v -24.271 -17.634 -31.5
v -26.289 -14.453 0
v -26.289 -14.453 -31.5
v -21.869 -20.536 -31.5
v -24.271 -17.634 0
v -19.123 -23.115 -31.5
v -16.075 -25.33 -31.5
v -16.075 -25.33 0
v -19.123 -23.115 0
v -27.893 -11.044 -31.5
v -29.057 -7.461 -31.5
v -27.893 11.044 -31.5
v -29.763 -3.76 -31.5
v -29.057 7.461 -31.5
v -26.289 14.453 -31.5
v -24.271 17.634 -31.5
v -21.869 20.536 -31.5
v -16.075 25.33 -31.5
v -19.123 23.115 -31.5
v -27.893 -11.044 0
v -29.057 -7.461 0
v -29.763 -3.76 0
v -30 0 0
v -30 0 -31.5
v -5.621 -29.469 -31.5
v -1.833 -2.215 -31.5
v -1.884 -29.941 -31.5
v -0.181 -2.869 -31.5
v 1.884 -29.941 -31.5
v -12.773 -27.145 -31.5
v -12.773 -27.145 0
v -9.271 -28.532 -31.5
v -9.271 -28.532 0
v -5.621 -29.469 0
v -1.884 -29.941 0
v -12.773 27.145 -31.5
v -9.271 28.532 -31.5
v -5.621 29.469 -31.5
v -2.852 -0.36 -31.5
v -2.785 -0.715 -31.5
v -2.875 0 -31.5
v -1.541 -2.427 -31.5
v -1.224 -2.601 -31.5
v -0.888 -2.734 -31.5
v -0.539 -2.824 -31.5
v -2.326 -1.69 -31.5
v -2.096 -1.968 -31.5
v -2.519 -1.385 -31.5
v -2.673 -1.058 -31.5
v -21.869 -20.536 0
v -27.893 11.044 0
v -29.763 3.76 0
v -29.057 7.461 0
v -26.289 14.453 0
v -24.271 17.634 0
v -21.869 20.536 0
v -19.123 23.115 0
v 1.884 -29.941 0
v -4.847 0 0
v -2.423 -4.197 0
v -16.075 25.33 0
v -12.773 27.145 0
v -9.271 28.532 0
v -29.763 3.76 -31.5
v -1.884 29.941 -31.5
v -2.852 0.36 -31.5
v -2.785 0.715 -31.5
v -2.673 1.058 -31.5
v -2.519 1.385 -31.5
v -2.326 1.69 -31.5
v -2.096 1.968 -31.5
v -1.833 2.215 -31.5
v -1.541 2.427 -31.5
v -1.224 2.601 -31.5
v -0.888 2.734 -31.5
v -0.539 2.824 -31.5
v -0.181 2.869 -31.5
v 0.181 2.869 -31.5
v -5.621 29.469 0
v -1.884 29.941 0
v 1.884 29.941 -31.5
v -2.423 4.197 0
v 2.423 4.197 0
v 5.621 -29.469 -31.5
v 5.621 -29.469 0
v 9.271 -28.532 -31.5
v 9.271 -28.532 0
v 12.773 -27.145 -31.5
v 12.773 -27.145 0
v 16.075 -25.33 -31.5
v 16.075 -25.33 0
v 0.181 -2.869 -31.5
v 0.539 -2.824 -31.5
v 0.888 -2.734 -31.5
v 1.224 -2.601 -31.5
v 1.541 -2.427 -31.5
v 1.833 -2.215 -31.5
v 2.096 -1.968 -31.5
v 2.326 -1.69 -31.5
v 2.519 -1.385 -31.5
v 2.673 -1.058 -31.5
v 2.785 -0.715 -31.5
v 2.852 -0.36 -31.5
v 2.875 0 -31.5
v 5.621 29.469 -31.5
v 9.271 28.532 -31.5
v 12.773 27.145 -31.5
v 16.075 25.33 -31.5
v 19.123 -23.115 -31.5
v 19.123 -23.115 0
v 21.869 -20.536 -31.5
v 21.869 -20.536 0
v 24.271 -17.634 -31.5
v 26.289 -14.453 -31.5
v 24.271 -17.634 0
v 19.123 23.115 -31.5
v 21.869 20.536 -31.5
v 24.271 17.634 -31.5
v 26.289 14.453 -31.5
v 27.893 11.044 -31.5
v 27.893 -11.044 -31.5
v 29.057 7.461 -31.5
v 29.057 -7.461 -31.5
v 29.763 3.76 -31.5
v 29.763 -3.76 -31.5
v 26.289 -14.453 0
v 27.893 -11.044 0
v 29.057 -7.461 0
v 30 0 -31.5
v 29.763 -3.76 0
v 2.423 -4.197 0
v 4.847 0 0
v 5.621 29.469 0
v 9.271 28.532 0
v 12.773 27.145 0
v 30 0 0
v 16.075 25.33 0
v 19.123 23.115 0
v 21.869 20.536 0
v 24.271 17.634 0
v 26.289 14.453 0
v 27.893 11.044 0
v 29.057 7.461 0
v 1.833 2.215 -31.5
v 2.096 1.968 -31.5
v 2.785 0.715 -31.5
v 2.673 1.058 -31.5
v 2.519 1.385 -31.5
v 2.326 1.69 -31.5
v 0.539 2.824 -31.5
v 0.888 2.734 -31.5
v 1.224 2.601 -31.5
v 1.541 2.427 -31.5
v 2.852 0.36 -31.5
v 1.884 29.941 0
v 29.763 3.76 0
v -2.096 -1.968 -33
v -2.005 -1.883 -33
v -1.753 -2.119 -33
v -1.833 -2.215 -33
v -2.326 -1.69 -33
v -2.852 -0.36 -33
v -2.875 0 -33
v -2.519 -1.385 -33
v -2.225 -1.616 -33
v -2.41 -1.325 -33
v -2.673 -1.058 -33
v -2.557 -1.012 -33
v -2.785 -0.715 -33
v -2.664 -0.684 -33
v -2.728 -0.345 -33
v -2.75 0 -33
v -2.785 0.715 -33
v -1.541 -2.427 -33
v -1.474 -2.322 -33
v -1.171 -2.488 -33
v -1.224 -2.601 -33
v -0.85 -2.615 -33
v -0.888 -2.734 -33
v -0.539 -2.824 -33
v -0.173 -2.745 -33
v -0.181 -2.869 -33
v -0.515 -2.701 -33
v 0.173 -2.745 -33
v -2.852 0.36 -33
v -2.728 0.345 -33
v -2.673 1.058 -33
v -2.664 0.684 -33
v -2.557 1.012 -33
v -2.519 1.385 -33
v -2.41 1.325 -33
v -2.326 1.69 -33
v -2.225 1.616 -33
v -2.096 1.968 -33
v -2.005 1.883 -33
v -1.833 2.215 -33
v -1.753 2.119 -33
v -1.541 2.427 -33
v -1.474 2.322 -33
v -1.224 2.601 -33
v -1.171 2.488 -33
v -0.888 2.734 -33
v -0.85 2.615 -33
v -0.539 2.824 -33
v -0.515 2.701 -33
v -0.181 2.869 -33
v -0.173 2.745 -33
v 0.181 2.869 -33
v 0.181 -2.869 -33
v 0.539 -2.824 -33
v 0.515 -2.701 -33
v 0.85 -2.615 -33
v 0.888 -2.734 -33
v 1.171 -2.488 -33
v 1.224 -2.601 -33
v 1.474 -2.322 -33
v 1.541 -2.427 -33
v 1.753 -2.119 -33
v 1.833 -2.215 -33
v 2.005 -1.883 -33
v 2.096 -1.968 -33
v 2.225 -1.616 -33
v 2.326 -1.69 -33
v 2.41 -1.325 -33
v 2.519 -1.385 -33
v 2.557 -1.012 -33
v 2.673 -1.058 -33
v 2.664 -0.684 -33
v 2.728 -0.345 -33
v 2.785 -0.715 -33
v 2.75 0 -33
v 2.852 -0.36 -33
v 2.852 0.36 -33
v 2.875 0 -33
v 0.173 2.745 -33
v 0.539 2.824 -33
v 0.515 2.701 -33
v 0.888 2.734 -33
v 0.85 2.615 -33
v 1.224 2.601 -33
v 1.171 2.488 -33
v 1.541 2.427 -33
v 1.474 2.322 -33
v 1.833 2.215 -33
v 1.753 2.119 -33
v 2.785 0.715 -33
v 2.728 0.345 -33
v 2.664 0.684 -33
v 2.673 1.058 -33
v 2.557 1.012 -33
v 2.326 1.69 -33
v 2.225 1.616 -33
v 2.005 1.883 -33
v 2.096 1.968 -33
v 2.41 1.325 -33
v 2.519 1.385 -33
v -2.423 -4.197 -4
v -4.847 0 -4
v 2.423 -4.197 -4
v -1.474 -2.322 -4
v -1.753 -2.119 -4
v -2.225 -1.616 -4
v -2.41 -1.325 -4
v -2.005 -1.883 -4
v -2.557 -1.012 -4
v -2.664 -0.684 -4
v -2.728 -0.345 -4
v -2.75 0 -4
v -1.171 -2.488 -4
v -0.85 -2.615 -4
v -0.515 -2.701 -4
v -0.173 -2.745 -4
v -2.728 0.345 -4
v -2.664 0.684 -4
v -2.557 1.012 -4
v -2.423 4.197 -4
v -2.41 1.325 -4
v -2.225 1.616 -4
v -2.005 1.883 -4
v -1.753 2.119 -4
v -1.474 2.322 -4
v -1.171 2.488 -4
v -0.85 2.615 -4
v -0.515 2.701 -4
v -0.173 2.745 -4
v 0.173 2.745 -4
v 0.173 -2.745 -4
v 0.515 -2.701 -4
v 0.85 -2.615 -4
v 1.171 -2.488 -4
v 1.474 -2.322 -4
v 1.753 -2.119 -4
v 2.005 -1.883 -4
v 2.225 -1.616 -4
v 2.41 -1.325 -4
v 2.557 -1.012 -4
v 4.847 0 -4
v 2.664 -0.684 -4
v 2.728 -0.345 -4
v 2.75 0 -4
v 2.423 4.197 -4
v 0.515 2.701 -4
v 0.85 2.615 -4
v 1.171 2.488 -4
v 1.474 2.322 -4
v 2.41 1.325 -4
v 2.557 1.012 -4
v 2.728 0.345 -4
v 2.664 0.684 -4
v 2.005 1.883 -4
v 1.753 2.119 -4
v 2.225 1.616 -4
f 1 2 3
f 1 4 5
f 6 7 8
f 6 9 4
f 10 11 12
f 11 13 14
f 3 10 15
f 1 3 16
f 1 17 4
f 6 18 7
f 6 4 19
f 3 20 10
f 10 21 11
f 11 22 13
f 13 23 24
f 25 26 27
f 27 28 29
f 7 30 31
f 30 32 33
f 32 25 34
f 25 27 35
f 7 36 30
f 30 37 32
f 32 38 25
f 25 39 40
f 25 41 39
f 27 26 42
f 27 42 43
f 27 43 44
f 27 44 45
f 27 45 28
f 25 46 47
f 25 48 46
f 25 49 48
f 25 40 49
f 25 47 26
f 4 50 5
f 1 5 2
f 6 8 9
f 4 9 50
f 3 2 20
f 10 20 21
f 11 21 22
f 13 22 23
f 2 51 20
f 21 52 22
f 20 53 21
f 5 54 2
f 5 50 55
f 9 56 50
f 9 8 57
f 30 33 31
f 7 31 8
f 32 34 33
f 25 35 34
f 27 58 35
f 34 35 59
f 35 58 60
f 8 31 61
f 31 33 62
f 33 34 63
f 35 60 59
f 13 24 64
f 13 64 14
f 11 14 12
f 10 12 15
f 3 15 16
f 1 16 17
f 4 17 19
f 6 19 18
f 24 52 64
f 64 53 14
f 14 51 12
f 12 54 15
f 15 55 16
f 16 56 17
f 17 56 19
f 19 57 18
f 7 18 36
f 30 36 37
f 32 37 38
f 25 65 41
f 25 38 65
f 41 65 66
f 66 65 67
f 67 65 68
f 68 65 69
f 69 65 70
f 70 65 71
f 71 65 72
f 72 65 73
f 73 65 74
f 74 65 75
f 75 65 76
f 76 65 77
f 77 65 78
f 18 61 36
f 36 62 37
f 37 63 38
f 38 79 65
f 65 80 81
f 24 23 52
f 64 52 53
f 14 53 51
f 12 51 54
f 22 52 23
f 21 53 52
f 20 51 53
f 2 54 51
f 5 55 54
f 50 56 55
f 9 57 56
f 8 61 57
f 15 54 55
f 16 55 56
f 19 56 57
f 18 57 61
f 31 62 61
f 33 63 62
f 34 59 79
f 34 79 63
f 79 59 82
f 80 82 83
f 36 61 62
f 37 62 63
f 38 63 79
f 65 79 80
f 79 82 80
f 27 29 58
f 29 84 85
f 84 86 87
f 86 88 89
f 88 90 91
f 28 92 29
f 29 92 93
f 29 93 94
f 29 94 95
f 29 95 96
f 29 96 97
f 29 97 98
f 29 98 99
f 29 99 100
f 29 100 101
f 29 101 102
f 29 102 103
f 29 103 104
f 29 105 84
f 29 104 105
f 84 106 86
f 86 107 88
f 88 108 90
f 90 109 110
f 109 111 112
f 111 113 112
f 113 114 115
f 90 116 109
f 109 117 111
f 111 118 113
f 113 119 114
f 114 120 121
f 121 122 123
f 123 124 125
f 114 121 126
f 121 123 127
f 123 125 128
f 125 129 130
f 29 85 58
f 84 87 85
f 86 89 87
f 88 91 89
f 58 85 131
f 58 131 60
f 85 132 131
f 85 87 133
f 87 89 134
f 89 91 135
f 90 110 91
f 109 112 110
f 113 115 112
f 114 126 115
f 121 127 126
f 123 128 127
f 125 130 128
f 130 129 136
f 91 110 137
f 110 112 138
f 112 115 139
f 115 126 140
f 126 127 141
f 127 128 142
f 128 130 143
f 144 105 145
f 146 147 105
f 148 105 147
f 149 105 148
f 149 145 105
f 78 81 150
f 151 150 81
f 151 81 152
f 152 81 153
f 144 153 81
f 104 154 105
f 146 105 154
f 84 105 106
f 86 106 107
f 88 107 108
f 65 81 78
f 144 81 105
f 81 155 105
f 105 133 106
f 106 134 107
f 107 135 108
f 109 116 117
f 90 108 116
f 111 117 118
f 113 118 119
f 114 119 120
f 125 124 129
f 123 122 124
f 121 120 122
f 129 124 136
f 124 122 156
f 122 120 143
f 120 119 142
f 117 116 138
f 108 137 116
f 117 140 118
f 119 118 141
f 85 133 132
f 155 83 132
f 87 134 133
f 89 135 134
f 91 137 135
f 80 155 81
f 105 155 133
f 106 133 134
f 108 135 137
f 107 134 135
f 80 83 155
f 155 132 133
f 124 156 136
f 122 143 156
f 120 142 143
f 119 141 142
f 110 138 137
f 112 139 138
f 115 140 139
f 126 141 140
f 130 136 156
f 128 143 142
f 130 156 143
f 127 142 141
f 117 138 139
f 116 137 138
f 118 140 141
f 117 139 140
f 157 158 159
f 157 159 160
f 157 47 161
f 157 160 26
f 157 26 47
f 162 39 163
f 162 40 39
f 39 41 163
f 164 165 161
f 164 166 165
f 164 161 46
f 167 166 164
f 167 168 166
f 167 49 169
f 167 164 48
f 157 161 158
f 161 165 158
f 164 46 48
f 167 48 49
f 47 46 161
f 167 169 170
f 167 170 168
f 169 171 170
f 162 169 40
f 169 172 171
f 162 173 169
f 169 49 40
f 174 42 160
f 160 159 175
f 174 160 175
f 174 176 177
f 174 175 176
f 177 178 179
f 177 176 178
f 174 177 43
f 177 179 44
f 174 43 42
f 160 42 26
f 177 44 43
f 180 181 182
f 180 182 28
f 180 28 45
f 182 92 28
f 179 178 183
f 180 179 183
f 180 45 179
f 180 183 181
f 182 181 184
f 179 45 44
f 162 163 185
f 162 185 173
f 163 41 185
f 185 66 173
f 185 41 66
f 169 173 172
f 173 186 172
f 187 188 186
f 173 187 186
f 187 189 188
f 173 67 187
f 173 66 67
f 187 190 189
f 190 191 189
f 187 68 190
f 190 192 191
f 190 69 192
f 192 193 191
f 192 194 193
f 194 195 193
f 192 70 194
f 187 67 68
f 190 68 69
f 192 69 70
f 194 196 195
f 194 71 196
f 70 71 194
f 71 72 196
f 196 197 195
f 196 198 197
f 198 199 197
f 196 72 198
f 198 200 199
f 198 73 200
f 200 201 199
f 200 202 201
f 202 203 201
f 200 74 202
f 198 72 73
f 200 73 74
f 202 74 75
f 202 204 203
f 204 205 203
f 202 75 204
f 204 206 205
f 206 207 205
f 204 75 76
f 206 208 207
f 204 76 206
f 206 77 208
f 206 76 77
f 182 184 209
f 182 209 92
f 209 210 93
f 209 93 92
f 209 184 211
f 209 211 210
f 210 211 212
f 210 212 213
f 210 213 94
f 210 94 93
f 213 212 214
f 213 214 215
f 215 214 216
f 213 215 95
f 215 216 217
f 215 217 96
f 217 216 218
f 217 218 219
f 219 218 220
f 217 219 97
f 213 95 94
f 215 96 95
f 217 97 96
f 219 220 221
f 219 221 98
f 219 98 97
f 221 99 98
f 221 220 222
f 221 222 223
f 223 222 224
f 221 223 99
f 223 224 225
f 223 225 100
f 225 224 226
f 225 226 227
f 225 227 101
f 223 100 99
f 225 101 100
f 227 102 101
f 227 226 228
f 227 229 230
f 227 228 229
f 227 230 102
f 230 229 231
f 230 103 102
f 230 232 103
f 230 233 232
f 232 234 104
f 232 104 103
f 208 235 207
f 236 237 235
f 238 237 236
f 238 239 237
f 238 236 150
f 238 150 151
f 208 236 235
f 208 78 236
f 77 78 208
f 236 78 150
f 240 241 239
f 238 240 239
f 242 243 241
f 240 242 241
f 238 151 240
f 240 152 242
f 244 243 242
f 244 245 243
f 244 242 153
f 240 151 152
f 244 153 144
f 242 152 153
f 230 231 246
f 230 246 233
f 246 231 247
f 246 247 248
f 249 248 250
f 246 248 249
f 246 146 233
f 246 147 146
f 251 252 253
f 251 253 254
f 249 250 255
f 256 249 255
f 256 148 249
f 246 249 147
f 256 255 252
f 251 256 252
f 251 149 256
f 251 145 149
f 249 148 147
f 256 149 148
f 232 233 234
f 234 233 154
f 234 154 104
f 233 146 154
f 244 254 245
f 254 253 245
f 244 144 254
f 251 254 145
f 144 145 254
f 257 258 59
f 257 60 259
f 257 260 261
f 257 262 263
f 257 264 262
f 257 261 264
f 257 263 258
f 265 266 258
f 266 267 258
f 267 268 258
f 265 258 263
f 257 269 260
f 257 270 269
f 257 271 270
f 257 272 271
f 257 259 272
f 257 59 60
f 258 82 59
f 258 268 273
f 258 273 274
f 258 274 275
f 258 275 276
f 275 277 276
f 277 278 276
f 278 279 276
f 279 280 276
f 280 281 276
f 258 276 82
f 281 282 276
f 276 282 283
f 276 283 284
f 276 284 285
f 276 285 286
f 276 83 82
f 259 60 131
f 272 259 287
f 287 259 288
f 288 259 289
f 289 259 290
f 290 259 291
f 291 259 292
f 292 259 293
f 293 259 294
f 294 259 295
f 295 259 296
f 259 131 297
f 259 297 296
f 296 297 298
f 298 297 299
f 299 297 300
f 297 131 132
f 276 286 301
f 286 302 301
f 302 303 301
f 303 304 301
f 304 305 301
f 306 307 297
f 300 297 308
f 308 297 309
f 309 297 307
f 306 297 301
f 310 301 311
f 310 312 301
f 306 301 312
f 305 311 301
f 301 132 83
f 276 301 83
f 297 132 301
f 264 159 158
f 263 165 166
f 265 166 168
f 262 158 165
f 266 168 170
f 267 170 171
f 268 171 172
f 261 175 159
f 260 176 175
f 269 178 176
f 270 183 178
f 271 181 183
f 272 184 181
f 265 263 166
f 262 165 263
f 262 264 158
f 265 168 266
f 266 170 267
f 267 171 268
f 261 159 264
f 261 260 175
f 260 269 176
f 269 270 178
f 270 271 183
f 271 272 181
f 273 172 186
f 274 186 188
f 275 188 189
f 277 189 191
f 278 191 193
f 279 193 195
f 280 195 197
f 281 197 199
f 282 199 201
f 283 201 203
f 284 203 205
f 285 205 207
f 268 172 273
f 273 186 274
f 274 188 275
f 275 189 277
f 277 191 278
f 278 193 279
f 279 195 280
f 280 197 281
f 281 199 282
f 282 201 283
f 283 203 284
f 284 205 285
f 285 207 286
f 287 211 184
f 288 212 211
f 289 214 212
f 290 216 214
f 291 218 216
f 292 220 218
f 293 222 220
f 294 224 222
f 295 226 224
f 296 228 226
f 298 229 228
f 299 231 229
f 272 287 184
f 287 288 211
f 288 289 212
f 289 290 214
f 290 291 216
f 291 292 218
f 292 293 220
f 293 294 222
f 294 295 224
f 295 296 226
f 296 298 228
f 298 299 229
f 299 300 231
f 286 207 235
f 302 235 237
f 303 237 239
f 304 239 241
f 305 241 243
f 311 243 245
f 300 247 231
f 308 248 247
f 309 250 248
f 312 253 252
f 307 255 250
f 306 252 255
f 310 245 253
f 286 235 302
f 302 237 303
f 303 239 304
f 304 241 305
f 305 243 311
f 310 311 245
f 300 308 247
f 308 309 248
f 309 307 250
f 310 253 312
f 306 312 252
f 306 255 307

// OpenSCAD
$fn = 50;


difference() {
	union() {
		translate(v = [0, 0, -31.5000000000]) {
			cylinder(h = 31.5000000000, r = 30.0000000000);
		}
		#translate(v = [0, 0, -33.0000000000]) {
			cylinder(h = 33, r = 2.8750000000);
		}
	}
	union() {
		translate(v = [0, 0, 0]) {
			rotate(a = [0, 0, 0]) {
				difference() {
					union() {
						translate(v = [0, 0, -4]) {
							linear_extrude(height = 4) {
								polygon(points = [[4.8468000000, 0.0000000000], [2.4234000000, 4.1974519271], [-2.4234000000, 4.1974519271], [-4.8468000000, 0.0000000000], [-2.4234000000, -4.1974519271], [2.4234000000, -4.1974519271]]);
							}
						}
					}
					union();
				}
			}
		}
		#translate(v = [0, 0, -100.0000000000]) {
			cylinder(h = 200, r = 2.7500000000);
		}
	}
}
